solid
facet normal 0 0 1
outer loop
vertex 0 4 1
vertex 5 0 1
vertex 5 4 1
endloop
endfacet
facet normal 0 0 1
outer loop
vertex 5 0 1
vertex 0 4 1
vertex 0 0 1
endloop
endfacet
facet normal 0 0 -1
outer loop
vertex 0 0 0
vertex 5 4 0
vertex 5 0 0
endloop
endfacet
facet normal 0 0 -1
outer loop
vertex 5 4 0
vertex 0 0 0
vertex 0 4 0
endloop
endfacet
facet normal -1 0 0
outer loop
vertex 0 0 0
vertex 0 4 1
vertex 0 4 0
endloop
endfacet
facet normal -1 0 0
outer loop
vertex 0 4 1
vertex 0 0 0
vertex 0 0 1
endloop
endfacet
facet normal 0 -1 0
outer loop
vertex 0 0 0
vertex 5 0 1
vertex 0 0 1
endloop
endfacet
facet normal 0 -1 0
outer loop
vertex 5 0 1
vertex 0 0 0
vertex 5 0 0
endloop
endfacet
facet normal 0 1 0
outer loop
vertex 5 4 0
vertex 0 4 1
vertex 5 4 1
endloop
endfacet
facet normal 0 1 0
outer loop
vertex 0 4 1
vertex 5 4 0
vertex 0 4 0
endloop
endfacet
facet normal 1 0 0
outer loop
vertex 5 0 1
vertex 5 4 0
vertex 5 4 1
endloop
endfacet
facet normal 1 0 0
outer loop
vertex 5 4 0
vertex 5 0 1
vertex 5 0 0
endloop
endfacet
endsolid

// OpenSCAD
module grid(rows, cols, spacing) {
  for (i = [0:rows-1]) {
    for (j = [0:cols-1]) {
      translate([i * spacing, j * spacing, 0]) {
        cube([1, 1, 1]);
      }
    }
  }
}

grid(5, 4, 1);
